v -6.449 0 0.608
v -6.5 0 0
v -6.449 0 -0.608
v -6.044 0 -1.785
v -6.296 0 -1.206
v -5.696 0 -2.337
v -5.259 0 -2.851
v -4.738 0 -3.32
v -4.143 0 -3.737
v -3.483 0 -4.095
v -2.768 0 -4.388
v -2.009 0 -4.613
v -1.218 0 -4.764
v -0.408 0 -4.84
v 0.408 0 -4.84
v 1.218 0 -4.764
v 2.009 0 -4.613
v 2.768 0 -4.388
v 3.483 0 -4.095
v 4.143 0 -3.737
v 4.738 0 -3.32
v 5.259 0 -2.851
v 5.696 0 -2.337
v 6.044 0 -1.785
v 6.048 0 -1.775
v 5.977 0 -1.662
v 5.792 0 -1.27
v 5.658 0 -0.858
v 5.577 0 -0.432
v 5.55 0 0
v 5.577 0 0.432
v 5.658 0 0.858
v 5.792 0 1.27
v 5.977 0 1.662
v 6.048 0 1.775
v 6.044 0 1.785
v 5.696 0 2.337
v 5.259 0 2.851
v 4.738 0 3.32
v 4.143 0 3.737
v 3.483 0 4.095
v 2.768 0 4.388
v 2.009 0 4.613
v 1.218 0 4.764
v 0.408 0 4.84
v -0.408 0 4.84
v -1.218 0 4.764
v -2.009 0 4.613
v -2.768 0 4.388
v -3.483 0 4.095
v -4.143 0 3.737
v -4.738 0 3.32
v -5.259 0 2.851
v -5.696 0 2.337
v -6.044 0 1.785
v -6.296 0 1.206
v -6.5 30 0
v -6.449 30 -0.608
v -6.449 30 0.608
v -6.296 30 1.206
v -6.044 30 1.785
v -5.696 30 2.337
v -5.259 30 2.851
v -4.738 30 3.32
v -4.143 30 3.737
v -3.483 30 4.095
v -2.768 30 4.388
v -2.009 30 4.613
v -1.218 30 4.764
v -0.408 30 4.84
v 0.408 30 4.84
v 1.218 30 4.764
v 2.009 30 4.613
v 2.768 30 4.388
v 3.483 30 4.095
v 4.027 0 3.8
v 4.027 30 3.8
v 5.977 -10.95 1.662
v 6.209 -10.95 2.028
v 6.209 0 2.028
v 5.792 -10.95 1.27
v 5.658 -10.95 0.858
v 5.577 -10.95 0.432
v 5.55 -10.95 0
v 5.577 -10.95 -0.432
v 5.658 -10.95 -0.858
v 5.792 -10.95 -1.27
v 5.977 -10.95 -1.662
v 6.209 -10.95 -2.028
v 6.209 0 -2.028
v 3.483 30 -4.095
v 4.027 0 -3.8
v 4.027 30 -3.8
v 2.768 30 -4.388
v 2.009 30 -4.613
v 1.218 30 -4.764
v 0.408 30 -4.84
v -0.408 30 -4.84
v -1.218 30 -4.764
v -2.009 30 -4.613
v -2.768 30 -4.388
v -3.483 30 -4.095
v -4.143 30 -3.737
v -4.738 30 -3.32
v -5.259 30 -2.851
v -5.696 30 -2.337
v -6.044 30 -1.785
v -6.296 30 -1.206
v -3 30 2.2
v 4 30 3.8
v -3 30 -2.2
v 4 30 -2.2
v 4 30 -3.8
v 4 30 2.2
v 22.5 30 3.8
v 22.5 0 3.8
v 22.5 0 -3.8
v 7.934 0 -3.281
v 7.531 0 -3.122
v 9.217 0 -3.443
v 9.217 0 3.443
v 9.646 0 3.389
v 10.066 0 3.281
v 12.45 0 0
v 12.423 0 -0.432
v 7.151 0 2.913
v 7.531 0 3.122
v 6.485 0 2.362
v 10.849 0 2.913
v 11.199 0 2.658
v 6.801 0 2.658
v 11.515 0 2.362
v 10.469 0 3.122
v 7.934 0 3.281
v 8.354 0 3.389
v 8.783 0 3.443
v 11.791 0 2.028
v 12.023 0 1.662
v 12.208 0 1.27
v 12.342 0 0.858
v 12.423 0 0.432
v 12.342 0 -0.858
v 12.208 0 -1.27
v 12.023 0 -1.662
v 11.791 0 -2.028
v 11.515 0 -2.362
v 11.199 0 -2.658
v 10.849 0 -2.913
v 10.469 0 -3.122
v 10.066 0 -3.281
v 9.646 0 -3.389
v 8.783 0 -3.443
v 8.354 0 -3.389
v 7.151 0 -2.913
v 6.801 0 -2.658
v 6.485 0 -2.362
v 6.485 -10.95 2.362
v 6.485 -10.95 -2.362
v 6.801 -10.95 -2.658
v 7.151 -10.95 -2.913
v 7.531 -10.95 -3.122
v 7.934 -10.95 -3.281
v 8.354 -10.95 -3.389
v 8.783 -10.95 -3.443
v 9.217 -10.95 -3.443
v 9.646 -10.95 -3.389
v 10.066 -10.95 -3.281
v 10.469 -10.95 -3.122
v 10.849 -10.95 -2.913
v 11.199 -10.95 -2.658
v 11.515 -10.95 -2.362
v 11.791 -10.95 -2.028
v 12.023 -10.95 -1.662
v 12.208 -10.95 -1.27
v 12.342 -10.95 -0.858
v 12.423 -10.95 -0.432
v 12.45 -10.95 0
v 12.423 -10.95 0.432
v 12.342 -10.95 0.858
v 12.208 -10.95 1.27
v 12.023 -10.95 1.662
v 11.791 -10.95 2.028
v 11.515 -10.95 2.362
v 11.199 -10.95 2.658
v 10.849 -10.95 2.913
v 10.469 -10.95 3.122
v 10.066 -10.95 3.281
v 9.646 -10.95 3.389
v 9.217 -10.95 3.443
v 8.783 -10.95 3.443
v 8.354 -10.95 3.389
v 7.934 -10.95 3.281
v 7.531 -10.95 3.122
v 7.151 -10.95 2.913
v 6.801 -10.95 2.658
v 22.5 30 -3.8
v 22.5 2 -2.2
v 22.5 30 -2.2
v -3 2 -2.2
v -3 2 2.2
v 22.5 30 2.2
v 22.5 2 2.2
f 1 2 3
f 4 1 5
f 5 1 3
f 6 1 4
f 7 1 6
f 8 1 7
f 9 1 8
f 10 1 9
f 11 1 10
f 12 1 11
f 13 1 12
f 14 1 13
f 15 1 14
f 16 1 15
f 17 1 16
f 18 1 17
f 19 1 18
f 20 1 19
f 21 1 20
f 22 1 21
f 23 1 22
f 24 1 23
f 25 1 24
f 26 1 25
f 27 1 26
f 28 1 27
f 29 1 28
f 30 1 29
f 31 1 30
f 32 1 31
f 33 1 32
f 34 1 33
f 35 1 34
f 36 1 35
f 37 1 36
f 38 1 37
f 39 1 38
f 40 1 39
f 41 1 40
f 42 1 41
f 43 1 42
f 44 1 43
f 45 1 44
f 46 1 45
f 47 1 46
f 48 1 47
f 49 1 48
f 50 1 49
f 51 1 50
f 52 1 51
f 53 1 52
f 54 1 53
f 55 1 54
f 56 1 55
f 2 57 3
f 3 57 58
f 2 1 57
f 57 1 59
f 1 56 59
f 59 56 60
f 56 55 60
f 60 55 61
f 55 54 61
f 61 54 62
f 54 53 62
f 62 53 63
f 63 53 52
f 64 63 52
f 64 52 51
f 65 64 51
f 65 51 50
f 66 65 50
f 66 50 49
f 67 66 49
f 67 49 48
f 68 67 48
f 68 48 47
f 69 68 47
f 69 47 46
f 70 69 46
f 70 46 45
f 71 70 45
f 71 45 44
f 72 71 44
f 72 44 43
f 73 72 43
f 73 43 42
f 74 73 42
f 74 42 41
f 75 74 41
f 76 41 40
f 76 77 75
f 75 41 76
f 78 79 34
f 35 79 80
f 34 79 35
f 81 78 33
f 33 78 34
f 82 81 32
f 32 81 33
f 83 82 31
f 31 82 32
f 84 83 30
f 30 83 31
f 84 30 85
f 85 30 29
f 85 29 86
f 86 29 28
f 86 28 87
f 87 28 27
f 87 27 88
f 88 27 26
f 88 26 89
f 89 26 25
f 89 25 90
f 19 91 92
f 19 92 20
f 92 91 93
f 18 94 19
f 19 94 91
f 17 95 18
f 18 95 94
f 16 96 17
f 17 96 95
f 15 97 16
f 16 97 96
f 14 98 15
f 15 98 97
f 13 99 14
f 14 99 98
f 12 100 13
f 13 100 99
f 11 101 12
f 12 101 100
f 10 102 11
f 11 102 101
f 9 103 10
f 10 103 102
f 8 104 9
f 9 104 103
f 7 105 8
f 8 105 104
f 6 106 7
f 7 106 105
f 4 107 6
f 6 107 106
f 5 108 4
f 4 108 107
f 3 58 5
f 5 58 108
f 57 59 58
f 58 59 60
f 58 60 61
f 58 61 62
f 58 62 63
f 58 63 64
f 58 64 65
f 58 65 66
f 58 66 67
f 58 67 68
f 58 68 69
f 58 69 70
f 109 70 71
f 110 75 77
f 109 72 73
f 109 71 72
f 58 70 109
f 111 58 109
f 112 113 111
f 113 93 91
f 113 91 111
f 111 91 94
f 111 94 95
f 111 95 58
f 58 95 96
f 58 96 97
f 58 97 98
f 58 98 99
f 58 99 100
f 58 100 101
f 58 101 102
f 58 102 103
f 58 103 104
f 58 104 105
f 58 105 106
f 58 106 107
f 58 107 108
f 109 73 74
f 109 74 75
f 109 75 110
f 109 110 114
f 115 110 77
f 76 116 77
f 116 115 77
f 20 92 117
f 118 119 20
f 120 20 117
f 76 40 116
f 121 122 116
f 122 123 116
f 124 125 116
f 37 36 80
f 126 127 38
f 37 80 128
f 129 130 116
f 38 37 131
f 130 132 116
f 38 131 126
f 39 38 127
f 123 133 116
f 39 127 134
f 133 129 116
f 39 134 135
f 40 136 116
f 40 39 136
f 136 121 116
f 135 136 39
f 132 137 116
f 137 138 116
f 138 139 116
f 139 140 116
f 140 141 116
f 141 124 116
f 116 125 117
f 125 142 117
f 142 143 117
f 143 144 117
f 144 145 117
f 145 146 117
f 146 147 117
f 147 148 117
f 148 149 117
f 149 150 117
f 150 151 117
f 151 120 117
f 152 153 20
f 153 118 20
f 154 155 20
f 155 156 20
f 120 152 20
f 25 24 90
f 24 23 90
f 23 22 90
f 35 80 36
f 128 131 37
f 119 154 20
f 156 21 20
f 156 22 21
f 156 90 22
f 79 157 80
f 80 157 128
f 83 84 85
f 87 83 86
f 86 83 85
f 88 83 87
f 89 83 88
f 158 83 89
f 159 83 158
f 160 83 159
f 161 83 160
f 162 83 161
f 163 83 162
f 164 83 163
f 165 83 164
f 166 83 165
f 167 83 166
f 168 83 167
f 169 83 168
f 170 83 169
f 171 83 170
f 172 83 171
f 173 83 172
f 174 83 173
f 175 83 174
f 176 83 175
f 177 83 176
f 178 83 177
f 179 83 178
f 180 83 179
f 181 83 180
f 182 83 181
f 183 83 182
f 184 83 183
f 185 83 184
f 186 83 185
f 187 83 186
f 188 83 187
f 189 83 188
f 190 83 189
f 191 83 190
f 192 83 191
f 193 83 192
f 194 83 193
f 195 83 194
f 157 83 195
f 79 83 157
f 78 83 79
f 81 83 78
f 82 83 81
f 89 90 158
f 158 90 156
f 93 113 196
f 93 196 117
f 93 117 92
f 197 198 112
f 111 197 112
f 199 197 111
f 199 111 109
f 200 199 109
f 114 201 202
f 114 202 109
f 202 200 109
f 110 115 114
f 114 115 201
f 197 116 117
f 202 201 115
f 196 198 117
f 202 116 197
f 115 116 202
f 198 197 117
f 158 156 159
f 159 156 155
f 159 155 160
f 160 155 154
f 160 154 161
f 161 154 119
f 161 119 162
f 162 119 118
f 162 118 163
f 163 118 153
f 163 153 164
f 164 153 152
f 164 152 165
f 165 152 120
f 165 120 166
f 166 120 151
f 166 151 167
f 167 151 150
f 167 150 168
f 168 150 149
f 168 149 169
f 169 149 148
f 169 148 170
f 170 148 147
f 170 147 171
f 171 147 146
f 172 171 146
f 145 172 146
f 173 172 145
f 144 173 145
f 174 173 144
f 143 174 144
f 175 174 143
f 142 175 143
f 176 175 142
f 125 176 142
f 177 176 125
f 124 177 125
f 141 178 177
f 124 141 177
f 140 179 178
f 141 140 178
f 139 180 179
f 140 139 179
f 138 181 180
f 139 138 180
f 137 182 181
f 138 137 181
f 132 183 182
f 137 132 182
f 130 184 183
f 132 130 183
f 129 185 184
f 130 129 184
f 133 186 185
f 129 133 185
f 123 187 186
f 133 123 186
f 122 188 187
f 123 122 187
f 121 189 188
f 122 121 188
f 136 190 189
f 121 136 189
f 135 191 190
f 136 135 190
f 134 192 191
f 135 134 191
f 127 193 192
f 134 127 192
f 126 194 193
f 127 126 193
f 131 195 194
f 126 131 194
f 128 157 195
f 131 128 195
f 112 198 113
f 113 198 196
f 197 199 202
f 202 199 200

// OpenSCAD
// Fridge shelf thingy


length = 30;

cyl_width = 13;
cyl_height = 9.7;

cube_width = 18.5;
cube_height = 7.6;
cube_offset = 4;

shelf_cut_height = 4.4;
shelf_cut_side_offset = 3.5; // Offset from side of cylinder.
shelf_cut_end_offset = 2; // Offset from end of holder.

// The stuff that rests on the fridge
holder_rest_diameter = 6.9; // r = d/2
holder_rest_height = 11;
holder_rest_offset = 9;
pad = 0.05;

$fn = 50;

module thing() {
    // Cut the part the shelf rests in from all of this
    difference() {
        union() {
            

            // The cylinder part that goes against the back.
            scale([cyl_width, 1, cyl_height]) {
                rotate([-90,0,0]) {
                    cylinder( r = 0.5, h = length );
                }
            }
            // The cube part, that the class rests in.
            // And cut.
            translate([cube_offset,0,cube_height / 2.0]) {
                rotate([-90,0,0]) {
                    cube([cube_width, cube_height, length]);
                }
            }

        }
        // Cube cut
        translate([shelf_cut_side_offset - cyl_width / 2.0,shelf_cut_end_offset,shelf_cut_height / 2.0]) {
            rotate([-90,0,0]) {
                cube([cube_width * 2, shelf_cut_height, length]);
            }
        }
    }
    // Add a cylinder for the stuff to rest in.
    translate([holder_rest_offset, -holder_rest_height + pad, 0])
    # rotate([-90,0,0]) {
        cylinder( r = holder_rest_diameter / 2.0, h = holder_rest_height );
    }
    
    
}


thing();
